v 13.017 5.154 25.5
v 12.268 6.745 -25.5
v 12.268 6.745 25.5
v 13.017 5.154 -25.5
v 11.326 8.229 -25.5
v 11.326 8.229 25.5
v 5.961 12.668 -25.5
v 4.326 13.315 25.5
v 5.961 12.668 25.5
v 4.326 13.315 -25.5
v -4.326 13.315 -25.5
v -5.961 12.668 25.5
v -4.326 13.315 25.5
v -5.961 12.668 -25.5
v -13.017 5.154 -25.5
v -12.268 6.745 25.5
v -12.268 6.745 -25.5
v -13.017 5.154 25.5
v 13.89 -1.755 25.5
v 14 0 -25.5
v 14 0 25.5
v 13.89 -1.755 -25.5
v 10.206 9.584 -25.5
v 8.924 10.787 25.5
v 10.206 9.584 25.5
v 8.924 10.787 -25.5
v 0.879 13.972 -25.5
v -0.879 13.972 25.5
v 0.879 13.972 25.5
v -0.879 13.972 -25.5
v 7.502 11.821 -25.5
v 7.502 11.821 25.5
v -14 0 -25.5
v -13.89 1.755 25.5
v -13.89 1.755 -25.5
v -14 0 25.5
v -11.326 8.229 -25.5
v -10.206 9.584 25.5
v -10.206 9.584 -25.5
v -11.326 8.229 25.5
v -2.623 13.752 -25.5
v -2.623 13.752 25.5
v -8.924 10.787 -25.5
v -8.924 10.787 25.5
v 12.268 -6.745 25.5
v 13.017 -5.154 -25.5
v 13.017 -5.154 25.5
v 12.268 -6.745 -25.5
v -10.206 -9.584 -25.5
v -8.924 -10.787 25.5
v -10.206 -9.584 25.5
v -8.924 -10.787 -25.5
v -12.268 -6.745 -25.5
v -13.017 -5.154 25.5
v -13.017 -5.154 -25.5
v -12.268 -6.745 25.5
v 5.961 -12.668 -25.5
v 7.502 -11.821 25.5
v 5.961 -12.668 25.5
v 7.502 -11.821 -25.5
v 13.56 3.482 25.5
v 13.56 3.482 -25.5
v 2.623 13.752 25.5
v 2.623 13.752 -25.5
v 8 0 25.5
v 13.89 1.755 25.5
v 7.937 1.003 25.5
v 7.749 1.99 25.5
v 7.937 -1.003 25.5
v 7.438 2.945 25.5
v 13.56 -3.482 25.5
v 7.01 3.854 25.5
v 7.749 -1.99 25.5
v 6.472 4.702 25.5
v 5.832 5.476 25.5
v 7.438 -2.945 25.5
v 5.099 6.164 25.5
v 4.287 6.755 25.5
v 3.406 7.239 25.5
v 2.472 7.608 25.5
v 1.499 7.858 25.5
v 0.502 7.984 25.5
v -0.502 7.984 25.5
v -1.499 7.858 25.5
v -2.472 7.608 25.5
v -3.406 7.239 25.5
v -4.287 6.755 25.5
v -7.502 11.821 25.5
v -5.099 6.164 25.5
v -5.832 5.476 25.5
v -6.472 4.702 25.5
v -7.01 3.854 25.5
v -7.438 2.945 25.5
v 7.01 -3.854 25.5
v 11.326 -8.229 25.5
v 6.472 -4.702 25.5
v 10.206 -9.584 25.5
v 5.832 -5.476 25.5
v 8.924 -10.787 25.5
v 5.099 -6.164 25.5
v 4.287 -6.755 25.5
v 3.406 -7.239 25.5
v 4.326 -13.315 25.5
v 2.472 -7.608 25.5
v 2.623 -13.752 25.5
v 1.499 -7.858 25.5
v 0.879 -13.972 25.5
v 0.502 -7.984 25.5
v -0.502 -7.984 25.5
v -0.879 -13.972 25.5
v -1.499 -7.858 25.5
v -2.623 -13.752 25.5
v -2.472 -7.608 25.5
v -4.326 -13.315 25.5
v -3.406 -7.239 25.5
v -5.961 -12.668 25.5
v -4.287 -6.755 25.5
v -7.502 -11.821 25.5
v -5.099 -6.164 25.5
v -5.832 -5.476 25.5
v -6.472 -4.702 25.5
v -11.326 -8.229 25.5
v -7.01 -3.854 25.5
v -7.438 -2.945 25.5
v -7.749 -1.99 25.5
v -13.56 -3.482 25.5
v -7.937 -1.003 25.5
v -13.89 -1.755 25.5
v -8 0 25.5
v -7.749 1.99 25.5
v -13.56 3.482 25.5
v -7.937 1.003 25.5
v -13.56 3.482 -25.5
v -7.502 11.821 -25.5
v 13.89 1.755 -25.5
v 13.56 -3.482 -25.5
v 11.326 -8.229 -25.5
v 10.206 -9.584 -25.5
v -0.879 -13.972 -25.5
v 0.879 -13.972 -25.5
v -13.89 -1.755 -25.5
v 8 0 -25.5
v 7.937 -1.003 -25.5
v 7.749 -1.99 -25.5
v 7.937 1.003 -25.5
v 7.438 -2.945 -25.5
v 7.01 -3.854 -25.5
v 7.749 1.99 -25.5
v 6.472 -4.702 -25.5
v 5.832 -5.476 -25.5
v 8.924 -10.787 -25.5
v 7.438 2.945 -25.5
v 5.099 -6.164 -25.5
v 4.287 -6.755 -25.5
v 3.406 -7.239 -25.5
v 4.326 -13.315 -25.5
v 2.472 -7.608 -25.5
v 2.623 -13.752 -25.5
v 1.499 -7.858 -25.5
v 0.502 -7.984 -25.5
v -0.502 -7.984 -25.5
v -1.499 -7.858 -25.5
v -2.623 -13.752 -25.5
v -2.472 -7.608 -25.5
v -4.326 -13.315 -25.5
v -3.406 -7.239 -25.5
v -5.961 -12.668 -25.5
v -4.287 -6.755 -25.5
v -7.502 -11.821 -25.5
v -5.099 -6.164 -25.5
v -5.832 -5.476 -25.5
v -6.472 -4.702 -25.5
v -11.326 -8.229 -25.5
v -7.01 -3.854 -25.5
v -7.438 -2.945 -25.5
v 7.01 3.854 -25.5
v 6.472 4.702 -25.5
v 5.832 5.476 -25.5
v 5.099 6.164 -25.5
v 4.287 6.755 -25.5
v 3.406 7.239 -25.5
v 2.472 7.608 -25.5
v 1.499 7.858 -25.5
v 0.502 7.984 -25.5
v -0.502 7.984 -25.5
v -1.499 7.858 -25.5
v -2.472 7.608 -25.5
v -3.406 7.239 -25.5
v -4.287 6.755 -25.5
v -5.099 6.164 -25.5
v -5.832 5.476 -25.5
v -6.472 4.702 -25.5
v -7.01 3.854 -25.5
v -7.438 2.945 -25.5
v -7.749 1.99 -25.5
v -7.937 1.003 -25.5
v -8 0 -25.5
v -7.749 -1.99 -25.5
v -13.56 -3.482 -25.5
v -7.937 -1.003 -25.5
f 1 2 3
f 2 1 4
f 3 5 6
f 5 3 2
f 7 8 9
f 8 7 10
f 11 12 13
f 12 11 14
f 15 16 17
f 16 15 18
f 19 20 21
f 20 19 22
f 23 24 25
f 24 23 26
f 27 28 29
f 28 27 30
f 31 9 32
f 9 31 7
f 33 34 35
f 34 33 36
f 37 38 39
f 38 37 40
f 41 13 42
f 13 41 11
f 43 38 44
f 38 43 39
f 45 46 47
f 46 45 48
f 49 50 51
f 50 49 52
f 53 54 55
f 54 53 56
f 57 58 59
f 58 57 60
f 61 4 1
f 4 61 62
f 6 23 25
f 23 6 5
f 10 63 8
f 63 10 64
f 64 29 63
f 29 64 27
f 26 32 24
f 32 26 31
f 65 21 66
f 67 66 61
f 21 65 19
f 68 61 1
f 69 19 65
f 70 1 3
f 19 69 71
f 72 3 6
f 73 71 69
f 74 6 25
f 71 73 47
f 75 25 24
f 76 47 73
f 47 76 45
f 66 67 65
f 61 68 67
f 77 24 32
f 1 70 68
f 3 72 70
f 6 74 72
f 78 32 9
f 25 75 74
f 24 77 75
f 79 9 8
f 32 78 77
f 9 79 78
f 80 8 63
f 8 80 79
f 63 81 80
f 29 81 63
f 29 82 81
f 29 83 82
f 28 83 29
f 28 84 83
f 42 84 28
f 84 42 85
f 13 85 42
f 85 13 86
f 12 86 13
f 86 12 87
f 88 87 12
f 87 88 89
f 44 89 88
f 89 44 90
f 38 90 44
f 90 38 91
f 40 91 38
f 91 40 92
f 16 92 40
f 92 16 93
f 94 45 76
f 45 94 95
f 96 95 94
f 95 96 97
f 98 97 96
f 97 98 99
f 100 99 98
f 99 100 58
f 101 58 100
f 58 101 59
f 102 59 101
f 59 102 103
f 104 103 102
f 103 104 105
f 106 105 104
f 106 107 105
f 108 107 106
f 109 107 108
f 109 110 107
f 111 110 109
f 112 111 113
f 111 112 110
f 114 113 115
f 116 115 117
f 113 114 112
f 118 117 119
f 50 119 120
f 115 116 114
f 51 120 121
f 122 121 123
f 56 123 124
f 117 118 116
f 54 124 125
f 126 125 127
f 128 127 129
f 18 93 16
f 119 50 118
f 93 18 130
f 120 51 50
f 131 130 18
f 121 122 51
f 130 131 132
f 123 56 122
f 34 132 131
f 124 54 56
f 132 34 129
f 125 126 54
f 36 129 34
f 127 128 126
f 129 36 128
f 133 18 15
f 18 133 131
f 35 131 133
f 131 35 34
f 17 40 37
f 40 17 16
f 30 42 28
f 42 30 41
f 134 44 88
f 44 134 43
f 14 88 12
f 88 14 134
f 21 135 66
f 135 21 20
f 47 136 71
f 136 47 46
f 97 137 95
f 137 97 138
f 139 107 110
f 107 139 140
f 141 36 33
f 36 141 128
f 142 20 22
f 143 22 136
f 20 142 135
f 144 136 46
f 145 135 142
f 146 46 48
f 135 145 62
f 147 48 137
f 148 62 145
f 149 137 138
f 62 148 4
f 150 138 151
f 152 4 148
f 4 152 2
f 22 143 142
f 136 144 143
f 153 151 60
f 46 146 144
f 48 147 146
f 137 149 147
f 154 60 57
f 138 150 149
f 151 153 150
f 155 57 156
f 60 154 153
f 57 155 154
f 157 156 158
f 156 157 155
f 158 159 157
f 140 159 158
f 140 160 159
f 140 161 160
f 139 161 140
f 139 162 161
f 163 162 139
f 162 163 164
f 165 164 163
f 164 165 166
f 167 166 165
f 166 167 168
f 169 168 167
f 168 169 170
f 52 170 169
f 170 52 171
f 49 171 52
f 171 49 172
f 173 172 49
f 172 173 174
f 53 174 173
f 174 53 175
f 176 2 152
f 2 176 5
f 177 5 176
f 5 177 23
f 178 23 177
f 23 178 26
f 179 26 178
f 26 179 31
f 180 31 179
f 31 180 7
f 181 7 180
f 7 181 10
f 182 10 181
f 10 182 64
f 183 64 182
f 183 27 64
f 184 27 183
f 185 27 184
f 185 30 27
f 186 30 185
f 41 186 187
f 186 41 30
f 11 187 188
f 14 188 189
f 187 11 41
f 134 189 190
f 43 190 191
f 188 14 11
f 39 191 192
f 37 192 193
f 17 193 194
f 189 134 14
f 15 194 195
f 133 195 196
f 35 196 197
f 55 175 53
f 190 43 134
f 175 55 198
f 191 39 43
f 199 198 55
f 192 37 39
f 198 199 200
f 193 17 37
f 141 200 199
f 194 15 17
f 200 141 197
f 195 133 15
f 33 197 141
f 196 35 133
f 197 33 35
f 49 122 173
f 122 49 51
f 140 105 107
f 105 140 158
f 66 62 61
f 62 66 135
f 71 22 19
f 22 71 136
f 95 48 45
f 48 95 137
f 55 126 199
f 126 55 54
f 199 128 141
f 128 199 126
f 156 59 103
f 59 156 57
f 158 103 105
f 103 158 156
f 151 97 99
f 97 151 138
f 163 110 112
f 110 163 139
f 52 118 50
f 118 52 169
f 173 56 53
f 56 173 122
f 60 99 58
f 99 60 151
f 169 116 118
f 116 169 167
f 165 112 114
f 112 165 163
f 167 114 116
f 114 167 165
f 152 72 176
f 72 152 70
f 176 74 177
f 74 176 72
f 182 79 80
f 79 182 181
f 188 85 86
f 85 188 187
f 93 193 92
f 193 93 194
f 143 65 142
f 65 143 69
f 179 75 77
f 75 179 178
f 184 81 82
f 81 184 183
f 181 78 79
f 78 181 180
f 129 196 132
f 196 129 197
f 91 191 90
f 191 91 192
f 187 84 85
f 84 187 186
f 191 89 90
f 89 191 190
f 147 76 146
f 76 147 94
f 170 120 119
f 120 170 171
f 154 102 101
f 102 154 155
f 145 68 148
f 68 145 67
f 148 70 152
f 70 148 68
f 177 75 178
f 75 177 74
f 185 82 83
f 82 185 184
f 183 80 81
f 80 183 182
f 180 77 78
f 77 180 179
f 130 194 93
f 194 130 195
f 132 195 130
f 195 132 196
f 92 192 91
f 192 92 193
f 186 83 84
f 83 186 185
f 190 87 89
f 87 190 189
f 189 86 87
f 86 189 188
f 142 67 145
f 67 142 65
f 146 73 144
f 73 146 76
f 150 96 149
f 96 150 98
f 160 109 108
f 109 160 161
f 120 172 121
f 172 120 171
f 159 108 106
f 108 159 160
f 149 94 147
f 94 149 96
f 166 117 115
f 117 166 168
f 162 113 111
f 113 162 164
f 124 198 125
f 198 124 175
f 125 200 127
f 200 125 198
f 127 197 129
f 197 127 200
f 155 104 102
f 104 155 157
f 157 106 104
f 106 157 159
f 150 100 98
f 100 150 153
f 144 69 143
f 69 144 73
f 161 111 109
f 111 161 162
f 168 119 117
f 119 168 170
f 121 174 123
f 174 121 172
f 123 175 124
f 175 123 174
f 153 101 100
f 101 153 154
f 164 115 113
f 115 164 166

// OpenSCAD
$fn = 50;


difference() {
	union() {
		translate(v = [0, 0, -25.5000000000]) {
			cylinder(h = 51, r = 14.0000000000);
		}
	}
	union() {
		translate(v = [0, 0, -100.0000000000]) {
			cylinder(h = 200, r = 8);
		}
	}
}
